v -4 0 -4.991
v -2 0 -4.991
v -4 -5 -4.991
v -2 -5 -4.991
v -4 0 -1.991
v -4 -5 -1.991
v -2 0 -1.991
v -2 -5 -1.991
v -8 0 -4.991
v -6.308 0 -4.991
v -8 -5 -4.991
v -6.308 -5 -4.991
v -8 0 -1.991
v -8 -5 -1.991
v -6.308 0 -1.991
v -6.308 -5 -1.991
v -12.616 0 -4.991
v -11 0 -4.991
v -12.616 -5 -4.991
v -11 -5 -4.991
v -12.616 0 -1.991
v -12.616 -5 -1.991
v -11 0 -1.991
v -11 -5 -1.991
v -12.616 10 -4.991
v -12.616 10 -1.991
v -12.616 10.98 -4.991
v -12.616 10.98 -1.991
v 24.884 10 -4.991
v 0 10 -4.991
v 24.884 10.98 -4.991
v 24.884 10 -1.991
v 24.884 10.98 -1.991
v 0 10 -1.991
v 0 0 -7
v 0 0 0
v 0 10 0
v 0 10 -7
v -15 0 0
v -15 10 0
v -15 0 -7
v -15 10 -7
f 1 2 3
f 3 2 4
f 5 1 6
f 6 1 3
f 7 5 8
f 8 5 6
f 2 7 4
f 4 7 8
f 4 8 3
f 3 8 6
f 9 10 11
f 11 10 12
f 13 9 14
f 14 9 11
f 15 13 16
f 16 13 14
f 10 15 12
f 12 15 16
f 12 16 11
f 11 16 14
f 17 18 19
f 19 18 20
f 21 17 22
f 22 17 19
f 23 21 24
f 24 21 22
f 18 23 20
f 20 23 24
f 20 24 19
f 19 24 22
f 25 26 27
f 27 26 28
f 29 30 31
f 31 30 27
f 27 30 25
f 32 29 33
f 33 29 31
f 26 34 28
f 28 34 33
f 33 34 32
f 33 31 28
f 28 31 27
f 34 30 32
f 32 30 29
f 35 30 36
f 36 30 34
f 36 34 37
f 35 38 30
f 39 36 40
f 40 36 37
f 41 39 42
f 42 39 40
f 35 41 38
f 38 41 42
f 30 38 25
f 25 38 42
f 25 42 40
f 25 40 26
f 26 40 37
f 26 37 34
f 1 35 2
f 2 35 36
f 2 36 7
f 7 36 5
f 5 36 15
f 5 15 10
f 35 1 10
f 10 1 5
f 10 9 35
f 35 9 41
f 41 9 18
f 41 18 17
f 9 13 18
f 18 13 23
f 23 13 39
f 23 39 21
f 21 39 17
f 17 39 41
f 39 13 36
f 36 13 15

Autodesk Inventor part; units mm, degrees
ref_plane "YZ Plane" through (0, 0, 0) normal (1, 0, 0) x (0, 1, 0)
ref_plane "XZ Plane" through (0, 0, 0) normal (0, 1, 0) x (-1, 0, 0)
ref_plane "XY Plane" through (0, 0, 0) normal (0, 0, 1) x (1, 0, 0)
sketch "Sketch1" plane through (0, 0, 0) normal (0, 1, 0) x (-1, 0, 0)
  line L0 (0, 0) -> (15, 0)
  line L1 (15, 0) -> (15, -7)
  line L2 (15, -7) -> (0, -7)
  line L3 (0, -7) -> (0, 0)
  dimension "d0" = 15
  dimension "d1" = 7
extrude "Extrusion1" add sketch "Sketch1" along normal blind 10
sketch "Sketch2" plane through (0, 10, 0) normal (0, 1, 0) x (1, 0, 0)
  line L0 (-12.6158, 4.9907) -> (24.8842, 4.9907)
  line L1 (24.8842, 4.9907) -> (24.8842, 1.9907)
  line L2 (24.8842, 1.9907) -> (-12.6158, 1.9907)
  line L3 (-12.6158, 1.9907) -> (-12.6158, 4.9907)
  point P0 (0, 0)
  dimension "d4" = 37.5
  dimension "d5" = 3
extrude "Extrusion2" add sketch "Sketch2" along normal blind 0.98
sketch "Sketch3" plane through (0, 0, 0) normal (0, -1, 0) x (1, 0, 0)
  line L0 (-12.6158, -4.9907) -> (-12.6158, -1.9907) projected
  line L1 (0, -1.9907) -> (-12.6158, -1.9907) projected
  line L2 (-12.6158, -4.9907) -> (-11, -4.9907)
  line L3 (-11, -4.9907) -> (-11, -1.9907)
  line L4 (-11, -1.9907) -> (-12.6158, -1.9907)
  line L5 (-12.6158, -1.9907) -> (-12.6158, -4.9907)
  line L6 (-8, -4.9907) -> (-6.3079, -4.9907)
  line L7 (-6.3079, -4.9907) -> (-6.3079, -1.9907)
  line L8 (-6.3079, -1.9907) -> (-8, -1.9907)
  line L9 (-8, -1.9907) -> (-8, -4.9907)
  line L10 (-4, -4.9907) -> (-2, -4.9907)
  line L11 (-2, -4.9907) -> (-2, -1.9907)
  line L12 (-2, -1.9907) -> (-4, -1.9907)
  line L13 (-4, -1.9907) -> (-4, -4.9907)
  point P0 (0, 0)
extrude "Extrusion3" add sketch "Sketch3" along normal blind 5
properties part number "limit_switch"
